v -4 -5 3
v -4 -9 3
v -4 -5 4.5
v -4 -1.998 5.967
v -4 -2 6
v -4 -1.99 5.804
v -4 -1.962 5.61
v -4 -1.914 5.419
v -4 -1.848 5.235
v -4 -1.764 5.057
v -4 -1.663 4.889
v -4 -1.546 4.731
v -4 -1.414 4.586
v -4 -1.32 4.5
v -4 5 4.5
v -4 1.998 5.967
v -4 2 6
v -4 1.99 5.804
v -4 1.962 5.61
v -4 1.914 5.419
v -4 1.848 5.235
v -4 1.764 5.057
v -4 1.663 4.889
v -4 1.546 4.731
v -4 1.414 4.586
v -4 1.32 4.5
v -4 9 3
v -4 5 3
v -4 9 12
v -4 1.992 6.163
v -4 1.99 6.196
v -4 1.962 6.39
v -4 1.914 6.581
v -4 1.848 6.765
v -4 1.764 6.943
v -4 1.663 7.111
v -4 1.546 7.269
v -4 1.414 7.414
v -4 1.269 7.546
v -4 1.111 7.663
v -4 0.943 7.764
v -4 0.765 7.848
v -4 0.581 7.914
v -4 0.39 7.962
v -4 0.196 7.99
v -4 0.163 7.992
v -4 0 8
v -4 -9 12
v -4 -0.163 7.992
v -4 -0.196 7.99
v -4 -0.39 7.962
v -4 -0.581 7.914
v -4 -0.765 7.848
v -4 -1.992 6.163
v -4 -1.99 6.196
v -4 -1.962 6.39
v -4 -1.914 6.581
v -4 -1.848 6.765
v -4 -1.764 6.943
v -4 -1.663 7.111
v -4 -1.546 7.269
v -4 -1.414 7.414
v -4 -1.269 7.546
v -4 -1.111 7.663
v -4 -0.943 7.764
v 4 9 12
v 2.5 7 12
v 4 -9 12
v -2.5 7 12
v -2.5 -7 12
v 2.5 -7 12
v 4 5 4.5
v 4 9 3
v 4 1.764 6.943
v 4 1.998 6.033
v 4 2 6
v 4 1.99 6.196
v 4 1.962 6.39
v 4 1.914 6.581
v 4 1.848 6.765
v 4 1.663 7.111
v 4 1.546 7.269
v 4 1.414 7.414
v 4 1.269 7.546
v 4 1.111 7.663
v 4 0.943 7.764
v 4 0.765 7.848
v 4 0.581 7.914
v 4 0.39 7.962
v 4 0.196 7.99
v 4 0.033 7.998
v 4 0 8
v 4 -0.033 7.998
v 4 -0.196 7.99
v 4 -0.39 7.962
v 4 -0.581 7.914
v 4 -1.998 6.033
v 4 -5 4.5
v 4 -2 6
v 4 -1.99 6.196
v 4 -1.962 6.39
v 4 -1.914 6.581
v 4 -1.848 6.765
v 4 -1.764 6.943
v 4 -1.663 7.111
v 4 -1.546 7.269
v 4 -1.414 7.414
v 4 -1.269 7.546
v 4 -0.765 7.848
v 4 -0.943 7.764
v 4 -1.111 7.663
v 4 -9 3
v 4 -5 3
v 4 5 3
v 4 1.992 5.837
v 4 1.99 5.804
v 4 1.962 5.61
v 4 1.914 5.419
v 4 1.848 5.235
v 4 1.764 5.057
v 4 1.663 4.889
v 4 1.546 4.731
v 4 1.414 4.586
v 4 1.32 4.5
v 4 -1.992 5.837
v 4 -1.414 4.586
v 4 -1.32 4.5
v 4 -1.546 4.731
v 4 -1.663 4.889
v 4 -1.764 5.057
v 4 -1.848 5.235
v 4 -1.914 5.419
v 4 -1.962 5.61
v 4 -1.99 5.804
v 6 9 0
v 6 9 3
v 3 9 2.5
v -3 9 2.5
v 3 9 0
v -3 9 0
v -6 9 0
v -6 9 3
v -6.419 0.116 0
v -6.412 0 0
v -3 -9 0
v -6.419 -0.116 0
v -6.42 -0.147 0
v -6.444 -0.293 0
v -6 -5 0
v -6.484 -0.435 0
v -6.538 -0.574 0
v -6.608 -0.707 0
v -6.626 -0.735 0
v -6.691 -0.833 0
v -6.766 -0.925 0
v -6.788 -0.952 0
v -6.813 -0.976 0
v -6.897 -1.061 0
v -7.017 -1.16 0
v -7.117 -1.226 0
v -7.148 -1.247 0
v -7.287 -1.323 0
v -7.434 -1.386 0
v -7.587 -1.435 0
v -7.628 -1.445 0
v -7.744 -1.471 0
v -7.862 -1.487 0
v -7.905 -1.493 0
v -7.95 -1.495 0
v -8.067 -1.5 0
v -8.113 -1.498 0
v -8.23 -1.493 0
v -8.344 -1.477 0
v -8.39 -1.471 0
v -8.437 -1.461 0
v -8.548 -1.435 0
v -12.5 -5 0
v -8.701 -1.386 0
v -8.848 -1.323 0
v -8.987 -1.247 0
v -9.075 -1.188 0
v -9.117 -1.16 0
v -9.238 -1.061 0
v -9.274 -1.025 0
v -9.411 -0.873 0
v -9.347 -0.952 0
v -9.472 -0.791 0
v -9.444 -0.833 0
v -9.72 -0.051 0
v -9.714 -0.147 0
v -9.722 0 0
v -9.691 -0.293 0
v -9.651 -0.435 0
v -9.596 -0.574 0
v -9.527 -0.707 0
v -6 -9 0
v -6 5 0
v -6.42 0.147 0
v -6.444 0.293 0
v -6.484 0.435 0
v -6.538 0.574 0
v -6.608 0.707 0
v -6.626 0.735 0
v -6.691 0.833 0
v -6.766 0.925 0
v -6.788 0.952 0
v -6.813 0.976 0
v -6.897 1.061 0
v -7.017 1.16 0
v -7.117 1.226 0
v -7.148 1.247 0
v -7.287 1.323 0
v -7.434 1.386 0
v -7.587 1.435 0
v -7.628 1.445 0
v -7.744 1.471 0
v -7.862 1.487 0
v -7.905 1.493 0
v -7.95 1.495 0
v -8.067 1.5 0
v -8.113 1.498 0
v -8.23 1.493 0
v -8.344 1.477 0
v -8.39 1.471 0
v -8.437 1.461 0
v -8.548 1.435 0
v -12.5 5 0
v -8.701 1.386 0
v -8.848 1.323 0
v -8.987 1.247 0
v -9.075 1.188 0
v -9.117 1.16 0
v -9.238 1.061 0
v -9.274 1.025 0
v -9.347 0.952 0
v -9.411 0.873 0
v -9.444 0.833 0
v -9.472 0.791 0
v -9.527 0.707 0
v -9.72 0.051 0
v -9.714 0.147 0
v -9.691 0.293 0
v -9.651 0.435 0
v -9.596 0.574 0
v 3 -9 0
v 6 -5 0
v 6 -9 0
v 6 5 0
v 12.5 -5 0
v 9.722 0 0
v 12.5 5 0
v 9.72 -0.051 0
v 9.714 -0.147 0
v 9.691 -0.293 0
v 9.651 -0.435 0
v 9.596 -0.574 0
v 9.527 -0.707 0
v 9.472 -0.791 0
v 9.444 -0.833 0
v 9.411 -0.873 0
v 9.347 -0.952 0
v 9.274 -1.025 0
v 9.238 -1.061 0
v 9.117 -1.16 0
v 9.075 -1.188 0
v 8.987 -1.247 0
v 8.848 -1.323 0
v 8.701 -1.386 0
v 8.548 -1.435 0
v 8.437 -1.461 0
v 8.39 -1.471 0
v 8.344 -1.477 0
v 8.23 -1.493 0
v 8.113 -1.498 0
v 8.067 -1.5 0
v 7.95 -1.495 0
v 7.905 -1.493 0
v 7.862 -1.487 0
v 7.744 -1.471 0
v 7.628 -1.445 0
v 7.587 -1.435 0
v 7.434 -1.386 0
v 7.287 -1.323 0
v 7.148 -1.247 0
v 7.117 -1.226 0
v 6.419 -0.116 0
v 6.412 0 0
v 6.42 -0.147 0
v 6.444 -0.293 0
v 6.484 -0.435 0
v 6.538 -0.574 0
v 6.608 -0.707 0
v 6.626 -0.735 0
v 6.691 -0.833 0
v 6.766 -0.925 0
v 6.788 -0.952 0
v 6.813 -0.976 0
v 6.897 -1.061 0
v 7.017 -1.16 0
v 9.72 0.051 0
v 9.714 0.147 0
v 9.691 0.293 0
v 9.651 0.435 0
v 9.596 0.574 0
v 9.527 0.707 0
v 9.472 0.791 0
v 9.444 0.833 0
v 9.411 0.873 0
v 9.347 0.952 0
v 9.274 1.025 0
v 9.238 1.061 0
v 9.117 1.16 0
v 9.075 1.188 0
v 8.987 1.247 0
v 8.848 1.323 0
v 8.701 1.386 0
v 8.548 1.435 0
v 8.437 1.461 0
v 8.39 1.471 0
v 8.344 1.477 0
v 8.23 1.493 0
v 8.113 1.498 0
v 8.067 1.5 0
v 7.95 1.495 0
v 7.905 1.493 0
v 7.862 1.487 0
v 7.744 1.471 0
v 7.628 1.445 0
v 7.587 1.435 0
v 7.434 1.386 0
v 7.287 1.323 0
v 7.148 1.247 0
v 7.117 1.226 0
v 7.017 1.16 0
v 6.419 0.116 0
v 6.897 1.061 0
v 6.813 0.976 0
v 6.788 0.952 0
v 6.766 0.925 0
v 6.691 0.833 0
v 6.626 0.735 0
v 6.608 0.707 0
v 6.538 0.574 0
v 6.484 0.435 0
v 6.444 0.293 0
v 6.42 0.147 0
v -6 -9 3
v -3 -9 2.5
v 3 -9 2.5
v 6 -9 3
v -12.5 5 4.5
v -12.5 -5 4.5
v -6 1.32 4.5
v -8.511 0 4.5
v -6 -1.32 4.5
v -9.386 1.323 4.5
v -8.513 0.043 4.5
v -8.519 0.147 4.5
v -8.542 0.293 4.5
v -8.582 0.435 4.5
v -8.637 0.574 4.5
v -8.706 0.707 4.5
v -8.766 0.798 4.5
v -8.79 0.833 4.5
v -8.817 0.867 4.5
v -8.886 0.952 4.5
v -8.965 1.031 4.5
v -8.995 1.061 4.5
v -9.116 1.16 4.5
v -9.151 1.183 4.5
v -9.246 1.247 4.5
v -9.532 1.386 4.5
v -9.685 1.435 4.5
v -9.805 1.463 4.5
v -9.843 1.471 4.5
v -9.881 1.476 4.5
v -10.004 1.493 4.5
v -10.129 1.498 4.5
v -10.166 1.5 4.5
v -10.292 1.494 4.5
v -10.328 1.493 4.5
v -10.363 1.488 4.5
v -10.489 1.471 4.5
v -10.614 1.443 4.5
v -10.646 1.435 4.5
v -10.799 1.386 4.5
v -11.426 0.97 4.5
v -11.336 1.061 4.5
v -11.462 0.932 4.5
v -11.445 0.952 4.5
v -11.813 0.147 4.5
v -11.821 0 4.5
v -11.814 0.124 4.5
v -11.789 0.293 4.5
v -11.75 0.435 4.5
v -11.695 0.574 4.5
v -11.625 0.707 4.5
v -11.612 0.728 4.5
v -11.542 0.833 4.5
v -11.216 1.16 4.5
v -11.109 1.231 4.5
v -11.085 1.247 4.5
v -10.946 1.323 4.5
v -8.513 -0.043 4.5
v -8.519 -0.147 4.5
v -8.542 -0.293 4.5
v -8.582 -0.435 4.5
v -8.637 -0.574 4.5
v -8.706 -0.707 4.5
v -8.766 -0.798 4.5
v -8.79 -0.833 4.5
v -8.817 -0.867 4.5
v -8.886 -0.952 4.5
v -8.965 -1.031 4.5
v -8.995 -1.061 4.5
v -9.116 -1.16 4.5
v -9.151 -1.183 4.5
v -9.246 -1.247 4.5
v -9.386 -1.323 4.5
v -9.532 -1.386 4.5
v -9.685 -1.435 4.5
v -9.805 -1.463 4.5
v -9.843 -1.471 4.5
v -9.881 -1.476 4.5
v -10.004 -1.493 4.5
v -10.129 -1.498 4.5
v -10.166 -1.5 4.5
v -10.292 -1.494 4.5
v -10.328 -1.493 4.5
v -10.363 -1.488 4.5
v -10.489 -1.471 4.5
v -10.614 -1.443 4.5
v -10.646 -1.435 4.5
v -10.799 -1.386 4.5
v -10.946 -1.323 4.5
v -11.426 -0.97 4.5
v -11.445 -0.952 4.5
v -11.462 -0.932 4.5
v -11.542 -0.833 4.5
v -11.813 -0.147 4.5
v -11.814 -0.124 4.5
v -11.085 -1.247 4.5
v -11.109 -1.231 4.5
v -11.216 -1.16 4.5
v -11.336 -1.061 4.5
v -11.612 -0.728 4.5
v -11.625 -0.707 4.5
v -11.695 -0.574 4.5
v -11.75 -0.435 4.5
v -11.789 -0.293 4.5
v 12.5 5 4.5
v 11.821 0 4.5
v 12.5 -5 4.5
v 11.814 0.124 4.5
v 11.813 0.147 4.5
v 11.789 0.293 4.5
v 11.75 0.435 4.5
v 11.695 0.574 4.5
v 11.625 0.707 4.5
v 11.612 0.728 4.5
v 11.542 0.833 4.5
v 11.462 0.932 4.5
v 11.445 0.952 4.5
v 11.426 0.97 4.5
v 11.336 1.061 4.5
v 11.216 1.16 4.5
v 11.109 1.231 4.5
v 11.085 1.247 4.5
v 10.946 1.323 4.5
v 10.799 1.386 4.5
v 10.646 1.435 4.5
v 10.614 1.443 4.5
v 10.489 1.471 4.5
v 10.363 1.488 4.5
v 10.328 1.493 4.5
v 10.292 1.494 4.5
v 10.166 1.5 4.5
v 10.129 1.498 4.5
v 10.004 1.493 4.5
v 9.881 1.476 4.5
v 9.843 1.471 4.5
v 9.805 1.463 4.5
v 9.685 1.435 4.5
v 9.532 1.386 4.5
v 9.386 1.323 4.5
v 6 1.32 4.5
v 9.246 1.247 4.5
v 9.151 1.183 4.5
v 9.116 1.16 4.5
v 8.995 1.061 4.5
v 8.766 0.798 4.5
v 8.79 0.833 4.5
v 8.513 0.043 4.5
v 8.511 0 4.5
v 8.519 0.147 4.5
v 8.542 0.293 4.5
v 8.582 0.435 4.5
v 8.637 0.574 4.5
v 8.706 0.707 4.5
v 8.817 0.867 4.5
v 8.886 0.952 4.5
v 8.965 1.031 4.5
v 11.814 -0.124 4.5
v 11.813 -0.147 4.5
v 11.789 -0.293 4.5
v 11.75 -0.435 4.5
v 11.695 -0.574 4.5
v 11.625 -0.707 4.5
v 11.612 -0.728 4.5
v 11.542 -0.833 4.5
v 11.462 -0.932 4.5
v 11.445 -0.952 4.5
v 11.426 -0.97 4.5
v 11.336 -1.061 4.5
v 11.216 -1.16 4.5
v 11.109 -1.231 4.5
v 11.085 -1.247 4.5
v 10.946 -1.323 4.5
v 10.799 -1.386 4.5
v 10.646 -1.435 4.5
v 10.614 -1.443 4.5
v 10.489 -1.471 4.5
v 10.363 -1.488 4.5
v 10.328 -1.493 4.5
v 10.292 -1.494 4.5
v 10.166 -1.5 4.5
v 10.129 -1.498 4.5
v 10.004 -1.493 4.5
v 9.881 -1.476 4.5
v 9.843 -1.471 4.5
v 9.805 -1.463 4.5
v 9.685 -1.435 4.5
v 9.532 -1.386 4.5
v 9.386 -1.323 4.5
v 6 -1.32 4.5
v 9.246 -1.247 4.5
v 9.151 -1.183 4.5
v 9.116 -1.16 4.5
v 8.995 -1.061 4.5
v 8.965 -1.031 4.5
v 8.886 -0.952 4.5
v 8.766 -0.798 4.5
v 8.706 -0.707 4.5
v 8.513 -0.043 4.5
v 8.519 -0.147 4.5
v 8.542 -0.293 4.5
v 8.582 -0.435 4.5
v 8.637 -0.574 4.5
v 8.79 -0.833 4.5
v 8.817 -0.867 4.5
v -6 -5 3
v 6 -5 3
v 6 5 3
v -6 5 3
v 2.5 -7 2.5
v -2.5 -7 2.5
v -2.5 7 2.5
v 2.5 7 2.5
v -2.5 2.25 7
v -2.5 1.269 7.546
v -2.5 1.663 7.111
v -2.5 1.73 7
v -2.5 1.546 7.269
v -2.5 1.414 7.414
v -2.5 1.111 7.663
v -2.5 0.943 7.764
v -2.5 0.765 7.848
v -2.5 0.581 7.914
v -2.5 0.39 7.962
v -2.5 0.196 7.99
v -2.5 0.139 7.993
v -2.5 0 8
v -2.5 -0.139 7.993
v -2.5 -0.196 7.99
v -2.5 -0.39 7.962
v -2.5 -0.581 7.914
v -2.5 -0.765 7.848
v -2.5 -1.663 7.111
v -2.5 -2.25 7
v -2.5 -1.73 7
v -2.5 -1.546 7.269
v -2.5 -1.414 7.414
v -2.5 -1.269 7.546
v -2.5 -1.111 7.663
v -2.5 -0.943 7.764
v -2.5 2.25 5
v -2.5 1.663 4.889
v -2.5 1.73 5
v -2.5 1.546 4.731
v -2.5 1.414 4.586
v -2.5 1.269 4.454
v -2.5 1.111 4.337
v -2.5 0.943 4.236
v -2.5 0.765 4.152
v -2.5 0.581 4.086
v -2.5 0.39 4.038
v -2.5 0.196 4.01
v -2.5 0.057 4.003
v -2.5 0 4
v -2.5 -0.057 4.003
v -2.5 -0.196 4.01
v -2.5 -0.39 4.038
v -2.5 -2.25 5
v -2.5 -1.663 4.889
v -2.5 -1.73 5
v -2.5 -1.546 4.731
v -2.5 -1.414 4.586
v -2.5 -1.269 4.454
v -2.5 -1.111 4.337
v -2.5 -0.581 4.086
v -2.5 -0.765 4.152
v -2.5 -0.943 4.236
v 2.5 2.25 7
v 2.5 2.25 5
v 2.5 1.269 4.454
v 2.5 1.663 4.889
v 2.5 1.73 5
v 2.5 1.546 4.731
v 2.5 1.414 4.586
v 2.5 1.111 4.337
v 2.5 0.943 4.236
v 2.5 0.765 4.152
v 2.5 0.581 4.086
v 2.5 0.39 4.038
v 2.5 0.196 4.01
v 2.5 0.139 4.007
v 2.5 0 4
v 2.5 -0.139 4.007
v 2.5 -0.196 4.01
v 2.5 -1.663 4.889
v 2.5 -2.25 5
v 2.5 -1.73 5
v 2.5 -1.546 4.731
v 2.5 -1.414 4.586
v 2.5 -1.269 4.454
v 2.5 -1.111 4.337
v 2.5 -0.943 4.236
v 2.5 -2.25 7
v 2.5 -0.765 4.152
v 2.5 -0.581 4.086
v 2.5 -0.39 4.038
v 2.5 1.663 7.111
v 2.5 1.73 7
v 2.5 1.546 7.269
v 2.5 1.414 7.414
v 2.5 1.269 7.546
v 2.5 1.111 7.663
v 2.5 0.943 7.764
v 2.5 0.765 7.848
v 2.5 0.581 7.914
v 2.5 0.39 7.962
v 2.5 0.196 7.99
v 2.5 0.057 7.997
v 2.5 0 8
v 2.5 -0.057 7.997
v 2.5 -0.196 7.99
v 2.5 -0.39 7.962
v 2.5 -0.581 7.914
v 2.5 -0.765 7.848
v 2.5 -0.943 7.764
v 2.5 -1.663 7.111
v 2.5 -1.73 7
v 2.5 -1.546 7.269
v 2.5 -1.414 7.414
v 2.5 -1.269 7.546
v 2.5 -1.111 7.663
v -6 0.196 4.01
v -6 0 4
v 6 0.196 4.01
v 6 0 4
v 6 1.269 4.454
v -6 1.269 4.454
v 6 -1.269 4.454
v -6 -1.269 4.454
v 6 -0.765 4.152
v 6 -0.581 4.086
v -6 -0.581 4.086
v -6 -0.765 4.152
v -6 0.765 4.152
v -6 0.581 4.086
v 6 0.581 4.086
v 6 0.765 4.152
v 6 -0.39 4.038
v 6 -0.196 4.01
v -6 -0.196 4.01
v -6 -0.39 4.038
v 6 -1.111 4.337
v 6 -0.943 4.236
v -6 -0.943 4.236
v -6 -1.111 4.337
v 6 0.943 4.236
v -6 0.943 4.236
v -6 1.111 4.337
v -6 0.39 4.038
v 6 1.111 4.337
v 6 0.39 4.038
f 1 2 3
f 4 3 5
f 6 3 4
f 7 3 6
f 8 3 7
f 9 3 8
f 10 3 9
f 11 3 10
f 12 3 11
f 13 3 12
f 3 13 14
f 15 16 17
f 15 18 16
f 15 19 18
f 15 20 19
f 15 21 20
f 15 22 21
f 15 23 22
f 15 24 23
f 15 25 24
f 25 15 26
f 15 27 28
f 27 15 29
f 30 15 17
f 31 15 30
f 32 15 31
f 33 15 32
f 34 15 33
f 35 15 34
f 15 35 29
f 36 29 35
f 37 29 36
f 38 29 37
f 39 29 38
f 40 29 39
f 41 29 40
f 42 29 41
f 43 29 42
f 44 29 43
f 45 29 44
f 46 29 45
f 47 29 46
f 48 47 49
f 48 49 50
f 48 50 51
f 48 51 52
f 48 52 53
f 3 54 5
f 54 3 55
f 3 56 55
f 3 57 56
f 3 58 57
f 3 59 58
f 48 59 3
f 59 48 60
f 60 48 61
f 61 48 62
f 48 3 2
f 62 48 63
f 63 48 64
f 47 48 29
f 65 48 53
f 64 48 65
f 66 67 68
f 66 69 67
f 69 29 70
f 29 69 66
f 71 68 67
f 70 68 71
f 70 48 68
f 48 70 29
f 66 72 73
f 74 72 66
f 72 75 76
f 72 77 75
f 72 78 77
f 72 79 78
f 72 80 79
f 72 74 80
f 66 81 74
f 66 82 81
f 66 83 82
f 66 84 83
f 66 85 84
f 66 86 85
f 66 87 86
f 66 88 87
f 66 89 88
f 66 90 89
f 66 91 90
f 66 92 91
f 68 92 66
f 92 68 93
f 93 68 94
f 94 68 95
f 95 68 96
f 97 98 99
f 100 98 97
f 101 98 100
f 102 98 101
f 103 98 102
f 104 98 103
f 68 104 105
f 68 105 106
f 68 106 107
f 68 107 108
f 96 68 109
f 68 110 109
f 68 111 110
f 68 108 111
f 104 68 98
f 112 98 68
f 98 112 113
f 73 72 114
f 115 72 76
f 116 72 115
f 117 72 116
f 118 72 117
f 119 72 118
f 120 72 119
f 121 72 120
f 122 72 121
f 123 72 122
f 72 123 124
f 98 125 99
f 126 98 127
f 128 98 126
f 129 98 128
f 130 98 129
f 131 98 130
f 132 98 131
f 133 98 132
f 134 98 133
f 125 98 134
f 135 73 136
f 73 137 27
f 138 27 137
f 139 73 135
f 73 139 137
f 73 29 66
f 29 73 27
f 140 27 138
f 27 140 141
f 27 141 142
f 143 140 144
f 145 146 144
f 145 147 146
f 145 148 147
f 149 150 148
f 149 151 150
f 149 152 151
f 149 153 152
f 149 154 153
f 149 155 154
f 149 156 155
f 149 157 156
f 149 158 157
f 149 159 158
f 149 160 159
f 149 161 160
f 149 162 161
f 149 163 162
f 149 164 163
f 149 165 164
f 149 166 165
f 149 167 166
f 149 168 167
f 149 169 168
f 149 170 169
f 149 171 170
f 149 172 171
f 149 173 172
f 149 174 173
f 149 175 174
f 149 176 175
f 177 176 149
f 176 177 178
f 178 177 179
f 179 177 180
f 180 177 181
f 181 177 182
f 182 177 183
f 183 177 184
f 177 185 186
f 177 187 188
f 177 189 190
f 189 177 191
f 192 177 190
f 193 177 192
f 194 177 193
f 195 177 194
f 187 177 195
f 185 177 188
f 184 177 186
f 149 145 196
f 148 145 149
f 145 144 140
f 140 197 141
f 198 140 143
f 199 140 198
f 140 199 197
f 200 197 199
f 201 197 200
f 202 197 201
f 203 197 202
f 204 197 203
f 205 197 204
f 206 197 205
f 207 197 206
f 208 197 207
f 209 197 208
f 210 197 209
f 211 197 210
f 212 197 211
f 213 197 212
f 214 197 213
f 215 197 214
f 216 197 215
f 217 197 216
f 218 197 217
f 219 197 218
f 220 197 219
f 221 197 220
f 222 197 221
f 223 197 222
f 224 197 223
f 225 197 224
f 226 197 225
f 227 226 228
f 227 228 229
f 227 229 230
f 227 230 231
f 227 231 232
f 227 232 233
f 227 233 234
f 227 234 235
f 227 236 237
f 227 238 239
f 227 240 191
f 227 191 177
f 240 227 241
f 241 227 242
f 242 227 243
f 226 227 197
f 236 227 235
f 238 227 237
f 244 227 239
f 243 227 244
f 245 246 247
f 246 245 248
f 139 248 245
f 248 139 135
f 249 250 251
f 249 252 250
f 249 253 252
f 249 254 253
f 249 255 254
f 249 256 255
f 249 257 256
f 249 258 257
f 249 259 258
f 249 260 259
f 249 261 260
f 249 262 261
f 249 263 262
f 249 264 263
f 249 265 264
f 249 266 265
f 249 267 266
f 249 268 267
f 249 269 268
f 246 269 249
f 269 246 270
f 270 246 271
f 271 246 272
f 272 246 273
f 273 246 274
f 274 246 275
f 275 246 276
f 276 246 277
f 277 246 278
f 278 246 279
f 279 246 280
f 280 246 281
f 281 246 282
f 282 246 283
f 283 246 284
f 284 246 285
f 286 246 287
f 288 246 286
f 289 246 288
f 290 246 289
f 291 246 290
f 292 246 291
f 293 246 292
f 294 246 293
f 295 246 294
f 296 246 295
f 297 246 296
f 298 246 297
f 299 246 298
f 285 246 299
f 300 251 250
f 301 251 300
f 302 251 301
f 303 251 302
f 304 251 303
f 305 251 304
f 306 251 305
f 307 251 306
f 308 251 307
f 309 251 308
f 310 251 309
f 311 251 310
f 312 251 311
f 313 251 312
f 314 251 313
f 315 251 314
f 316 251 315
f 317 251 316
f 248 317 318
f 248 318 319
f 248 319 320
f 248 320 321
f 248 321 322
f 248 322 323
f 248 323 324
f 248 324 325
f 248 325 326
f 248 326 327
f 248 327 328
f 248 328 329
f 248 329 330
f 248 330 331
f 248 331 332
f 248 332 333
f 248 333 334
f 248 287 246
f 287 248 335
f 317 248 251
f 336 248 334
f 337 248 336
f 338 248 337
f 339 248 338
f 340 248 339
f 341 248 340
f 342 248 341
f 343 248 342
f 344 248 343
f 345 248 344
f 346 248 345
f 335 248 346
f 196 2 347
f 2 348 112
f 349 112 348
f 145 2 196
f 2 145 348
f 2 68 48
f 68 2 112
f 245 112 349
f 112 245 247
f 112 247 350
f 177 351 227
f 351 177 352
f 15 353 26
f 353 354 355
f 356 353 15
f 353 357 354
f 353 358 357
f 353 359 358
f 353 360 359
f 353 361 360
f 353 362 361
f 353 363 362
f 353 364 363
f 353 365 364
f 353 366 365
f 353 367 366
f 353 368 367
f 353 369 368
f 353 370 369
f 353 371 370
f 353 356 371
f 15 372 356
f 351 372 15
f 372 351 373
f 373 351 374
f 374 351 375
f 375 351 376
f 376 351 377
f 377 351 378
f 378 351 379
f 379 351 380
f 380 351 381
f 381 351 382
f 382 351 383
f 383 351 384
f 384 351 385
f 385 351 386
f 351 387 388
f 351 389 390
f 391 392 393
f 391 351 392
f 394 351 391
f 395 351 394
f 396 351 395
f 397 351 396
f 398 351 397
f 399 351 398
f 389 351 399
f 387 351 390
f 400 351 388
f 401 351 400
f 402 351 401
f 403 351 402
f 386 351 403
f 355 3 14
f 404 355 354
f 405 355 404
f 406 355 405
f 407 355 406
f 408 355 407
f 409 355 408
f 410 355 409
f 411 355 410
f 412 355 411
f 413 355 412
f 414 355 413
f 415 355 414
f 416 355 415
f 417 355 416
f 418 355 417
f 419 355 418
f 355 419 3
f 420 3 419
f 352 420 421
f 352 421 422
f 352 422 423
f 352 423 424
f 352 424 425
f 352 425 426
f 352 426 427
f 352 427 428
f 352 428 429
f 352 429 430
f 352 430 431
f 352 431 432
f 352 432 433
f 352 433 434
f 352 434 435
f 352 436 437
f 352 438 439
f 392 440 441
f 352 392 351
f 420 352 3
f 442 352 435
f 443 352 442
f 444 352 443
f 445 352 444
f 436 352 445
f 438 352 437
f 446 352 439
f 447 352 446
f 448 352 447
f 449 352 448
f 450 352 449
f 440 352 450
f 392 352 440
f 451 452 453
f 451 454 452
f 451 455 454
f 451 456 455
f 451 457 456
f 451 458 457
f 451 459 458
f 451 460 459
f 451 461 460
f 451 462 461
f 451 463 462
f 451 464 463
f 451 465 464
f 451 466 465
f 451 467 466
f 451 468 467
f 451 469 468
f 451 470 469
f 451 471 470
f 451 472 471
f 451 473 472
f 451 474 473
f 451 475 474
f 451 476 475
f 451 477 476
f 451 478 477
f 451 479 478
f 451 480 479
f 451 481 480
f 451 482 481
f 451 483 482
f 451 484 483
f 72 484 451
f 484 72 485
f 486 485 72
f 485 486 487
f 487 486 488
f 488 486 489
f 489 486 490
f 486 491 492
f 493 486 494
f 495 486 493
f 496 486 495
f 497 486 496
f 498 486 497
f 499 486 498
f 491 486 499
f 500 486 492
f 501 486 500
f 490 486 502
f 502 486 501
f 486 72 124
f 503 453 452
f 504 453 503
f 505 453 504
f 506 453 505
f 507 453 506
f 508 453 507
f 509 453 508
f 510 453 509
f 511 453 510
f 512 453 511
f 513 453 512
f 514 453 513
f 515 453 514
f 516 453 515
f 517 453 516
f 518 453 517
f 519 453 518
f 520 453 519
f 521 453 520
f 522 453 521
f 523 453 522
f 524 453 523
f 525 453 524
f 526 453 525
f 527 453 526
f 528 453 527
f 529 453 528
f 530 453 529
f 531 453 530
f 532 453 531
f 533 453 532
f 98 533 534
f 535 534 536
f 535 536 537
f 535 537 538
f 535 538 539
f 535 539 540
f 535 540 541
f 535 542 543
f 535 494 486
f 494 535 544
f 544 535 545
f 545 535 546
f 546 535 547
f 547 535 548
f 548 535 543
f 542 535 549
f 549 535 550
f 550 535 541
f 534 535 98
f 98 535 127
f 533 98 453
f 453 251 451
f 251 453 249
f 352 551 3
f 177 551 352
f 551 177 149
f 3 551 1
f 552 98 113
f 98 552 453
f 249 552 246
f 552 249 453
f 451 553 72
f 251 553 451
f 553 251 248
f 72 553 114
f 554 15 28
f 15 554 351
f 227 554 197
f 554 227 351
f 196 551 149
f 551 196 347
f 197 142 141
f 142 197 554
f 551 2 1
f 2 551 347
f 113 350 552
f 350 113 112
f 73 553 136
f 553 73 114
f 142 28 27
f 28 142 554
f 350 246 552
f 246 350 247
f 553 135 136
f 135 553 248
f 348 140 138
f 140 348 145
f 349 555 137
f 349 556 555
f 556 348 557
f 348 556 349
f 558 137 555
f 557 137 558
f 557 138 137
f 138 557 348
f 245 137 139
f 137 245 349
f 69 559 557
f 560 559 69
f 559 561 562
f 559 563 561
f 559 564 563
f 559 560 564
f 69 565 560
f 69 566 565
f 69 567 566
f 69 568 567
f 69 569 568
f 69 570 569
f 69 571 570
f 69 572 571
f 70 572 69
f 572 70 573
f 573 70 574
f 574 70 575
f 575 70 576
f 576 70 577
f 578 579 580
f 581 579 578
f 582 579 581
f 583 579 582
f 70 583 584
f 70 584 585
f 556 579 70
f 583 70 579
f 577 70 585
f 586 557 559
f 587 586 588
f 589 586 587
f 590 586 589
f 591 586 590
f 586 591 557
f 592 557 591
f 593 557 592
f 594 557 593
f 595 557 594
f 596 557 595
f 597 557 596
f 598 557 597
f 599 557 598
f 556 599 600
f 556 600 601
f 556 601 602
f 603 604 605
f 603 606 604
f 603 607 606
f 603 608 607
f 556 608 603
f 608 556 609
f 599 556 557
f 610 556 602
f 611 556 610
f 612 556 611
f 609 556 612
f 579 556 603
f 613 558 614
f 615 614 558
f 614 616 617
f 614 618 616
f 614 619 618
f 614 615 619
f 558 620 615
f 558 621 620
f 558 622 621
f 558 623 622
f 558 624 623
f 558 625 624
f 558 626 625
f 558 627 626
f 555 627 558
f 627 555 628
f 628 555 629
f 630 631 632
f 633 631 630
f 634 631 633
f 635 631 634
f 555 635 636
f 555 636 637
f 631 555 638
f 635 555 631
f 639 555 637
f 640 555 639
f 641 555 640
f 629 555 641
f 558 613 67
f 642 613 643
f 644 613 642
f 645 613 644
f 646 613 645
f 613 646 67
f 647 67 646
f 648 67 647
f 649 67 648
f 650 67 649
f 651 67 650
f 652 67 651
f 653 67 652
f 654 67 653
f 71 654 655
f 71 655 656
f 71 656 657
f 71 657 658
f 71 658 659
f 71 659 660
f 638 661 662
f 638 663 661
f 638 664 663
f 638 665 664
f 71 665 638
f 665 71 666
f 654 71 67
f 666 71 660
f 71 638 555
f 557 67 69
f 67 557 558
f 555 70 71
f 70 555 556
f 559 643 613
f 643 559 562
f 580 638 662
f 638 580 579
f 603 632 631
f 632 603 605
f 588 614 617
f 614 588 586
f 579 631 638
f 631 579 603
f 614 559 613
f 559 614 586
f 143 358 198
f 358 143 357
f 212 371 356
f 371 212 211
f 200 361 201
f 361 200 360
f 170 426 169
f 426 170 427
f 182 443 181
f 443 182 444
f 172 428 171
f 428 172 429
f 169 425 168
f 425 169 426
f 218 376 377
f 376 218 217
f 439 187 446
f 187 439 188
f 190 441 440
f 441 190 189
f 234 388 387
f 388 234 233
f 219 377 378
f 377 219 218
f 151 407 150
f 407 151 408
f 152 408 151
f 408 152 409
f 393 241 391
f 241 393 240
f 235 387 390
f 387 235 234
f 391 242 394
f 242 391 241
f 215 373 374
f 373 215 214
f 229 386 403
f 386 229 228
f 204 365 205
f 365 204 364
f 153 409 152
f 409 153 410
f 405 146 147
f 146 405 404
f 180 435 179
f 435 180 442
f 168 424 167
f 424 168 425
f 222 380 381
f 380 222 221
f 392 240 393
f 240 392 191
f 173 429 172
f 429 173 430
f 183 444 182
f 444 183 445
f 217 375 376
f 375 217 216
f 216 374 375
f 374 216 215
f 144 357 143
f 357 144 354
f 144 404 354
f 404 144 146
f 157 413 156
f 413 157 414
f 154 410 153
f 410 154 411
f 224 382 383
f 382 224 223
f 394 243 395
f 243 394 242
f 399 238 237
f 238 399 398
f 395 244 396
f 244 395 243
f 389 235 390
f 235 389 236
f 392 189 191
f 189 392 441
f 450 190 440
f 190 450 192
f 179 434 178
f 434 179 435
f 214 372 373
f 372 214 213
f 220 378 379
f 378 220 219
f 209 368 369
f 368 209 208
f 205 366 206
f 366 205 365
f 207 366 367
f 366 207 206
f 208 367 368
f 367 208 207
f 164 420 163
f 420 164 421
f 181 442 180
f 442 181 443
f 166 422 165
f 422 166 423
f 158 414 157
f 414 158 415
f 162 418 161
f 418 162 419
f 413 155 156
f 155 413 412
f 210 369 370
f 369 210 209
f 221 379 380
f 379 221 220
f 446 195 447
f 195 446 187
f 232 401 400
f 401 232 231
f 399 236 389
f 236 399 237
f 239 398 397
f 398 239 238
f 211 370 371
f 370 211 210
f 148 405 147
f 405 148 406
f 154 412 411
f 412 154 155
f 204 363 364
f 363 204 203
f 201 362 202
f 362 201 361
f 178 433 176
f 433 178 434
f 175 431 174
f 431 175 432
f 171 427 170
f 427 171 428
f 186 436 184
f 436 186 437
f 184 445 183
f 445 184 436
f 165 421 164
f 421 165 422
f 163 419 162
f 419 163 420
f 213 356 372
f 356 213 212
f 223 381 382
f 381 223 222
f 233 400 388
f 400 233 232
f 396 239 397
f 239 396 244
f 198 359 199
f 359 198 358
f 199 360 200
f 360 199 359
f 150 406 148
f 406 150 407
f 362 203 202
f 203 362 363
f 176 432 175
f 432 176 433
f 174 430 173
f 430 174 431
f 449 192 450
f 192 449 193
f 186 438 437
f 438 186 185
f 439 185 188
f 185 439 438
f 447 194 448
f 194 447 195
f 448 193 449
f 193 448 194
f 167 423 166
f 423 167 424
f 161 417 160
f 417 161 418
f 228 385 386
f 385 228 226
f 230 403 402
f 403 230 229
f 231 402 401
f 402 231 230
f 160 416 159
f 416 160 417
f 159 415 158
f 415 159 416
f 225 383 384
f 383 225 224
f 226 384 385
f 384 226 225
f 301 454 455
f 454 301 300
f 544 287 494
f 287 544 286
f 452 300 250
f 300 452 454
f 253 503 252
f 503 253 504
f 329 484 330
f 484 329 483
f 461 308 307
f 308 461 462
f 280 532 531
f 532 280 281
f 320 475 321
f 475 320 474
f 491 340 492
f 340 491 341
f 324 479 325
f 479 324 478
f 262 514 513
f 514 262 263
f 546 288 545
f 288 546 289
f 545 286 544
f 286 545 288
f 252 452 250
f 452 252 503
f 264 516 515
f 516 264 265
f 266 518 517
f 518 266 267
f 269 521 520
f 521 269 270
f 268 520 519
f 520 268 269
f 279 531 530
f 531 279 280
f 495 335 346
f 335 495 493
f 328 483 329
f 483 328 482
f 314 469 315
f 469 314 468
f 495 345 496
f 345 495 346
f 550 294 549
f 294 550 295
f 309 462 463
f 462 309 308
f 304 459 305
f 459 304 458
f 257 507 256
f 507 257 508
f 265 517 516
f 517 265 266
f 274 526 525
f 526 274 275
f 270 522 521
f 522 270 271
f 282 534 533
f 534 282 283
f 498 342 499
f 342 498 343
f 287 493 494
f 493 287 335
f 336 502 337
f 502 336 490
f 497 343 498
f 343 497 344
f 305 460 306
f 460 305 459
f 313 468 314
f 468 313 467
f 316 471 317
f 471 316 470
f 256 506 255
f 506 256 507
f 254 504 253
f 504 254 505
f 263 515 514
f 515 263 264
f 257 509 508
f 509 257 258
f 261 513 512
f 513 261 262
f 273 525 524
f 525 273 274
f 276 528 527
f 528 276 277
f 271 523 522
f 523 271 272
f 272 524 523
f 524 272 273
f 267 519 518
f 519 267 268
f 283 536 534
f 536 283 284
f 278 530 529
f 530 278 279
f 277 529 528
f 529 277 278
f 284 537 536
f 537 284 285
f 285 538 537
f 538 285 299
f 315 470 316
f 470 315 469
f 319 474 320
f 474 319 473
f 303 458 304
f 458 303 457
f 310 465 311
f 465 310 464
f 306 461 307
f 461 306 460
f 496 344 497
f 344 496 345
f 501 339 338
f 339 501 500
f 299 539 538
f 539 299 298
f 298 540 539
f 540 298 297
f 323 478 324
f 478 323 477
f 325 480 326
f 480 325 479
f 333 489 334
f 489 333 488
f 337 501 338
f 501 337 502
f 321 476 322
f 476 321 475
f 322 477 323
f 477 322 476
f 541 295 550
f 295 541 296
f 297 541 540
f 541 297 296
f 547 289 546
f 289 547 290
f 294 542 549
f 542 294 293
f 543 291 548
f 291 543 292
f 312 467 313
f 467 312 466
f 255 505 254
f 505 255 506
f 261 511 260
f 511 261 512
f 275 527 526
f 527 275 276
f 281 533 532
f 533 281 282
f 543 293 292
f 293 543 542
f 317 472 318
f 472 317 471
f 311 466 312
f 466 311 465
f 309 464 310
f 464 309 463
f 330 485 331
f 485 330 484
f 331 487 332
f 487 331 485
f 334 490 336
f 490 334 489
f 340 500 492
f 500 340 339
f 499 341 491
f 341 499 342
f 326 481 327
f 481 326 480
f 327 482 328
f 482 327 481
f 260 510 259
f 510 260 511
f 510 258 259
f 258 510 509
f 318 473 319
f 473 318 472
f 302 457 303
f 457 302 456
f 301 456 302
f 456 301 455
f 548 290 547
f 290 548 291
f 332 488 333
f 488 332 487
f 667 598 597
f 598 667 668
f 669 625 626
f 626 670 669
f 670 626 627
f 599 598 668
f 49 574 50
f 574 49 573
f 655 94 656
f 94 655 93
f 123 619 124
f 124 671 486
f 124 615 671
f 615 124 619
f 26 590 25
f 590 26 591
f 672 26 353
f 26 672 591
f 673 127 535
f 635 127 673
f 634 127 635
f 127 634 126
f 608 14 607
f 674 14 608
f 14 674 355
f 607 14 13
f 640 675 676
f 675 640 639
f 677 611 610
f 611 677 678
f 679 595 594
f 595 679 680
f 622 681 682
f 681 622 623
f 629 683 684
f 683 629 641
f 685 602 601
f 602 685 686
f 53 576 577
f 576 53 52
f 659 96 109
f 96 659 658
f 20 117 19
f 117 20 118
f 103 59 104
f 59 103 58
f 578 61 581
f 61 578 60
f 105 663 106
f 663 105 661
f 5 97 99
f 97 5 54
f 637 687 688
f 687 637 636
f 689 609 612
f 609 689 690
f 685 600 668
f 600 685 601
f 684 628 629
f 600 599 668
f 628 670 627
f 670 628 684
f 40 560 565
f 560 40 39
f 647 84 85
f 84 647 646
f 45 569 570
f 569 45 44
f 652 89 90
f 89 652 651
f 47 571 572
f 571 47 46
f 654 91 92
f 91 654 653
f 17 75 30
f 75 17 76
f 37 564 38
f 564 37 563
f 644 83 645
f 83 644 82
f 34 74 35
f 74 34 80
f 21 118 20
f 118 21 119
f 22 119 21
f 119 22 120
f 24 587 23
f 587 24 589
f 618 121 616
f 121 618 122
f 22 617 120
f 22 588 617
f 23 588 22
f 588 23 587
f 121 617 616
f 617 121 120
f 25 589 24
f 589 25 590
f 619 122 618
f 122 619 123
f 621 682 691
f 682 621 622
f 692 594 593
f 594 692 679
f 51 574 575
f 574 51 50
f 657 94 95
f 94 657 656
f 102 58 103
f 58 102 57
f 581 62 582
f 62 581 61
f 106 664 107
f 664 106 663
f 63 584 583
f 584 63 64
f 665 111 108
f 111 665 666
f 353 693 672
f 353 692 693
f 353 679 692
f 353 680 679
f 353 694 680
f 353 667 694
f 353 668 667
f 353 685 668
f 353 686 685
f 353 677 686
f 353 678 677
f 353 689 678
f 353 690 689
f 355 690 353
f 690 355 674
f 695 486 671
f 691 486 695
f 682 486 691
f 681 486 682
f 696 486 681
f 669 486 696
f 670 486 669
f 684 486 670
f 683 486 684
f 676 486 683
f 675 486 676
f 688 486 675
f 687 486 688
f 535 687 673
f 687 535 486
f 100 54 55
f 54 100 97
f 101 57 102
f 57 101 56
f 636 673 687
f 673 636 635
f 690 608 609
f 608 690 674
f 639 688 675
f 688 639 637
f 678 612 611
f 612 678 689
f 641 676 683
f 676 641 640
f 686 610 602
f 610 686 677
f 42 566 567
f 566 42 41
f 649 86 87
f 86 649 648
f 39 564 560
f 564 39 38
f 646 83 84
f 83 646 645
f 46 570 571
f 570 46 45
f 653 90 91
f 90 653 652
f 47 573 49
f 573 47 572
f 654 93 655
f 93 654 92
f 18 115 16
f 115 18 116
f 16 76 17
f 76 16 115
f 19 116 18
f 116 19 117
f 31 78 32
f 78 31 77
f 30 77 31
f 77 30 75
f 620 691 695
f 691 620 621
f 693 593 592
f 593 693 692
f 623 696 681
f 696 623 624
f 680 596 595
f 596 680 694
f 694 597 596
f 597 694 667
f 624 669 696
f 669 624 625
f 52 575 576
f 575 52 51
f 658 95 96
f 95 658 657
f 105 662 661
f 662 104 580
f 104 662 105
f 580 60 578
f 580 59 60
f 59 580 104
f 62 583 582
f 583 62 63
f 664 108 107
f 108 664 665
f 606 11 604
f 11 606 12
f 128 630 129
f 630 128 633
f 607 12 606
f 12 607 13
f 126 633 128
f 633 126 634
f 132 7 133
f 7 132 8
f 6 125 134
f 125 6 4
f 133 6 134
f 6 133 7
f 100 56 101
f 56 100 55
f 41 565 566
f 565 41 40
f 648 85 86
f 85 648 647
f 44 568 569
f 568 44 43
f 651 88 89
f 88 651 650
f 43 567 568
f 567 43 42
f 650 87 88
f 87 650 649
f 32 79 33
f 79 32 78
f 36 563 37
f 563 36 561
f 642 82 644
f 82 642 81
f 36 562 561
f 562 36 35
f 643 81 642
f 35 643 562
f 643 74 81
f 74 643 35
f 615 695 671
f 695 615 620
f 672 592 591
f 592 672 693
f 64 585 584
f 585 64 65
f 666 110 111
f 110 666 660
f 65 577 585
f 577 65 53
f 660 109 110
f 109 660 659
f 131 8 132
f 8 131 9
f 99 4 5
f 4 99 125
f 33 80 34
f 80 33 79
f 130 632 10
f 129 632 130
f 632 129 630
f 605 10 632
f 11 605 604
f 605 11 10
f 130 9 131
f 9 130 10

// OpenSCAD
$fn=64;

difference(){
    union(){
        difference(){
            union(){
                translate([0, 0, 6]) cube([8, 18, 12], true);
                translate([0, 0, 2.25]) cube([25, 10, 4.5], true);
                translate([0, 0, 1.5]) cube([12, 18, 3], true);
            }
            translate([0, 0, 1]) cube([6, 60, 3], true);
            translate([0, 0, 6]) cube([5, 14, 20], true);
        }
        translate([0, 0, 6]) rotate([0,90,0]) cube([2, 4.5, 8], true);
    }
    translate([-9, 0, 2]) rotate([0,-25,0]) cylinder(10,1.5,1.5,true);
    translate([9, 0, 2]) rotate([0,25,0]) cylinder(10,1.5,1.5,true);
    translate([0, 0, 6]) rotate([0,90,0]) cylinder(12,2,2,true);
}
